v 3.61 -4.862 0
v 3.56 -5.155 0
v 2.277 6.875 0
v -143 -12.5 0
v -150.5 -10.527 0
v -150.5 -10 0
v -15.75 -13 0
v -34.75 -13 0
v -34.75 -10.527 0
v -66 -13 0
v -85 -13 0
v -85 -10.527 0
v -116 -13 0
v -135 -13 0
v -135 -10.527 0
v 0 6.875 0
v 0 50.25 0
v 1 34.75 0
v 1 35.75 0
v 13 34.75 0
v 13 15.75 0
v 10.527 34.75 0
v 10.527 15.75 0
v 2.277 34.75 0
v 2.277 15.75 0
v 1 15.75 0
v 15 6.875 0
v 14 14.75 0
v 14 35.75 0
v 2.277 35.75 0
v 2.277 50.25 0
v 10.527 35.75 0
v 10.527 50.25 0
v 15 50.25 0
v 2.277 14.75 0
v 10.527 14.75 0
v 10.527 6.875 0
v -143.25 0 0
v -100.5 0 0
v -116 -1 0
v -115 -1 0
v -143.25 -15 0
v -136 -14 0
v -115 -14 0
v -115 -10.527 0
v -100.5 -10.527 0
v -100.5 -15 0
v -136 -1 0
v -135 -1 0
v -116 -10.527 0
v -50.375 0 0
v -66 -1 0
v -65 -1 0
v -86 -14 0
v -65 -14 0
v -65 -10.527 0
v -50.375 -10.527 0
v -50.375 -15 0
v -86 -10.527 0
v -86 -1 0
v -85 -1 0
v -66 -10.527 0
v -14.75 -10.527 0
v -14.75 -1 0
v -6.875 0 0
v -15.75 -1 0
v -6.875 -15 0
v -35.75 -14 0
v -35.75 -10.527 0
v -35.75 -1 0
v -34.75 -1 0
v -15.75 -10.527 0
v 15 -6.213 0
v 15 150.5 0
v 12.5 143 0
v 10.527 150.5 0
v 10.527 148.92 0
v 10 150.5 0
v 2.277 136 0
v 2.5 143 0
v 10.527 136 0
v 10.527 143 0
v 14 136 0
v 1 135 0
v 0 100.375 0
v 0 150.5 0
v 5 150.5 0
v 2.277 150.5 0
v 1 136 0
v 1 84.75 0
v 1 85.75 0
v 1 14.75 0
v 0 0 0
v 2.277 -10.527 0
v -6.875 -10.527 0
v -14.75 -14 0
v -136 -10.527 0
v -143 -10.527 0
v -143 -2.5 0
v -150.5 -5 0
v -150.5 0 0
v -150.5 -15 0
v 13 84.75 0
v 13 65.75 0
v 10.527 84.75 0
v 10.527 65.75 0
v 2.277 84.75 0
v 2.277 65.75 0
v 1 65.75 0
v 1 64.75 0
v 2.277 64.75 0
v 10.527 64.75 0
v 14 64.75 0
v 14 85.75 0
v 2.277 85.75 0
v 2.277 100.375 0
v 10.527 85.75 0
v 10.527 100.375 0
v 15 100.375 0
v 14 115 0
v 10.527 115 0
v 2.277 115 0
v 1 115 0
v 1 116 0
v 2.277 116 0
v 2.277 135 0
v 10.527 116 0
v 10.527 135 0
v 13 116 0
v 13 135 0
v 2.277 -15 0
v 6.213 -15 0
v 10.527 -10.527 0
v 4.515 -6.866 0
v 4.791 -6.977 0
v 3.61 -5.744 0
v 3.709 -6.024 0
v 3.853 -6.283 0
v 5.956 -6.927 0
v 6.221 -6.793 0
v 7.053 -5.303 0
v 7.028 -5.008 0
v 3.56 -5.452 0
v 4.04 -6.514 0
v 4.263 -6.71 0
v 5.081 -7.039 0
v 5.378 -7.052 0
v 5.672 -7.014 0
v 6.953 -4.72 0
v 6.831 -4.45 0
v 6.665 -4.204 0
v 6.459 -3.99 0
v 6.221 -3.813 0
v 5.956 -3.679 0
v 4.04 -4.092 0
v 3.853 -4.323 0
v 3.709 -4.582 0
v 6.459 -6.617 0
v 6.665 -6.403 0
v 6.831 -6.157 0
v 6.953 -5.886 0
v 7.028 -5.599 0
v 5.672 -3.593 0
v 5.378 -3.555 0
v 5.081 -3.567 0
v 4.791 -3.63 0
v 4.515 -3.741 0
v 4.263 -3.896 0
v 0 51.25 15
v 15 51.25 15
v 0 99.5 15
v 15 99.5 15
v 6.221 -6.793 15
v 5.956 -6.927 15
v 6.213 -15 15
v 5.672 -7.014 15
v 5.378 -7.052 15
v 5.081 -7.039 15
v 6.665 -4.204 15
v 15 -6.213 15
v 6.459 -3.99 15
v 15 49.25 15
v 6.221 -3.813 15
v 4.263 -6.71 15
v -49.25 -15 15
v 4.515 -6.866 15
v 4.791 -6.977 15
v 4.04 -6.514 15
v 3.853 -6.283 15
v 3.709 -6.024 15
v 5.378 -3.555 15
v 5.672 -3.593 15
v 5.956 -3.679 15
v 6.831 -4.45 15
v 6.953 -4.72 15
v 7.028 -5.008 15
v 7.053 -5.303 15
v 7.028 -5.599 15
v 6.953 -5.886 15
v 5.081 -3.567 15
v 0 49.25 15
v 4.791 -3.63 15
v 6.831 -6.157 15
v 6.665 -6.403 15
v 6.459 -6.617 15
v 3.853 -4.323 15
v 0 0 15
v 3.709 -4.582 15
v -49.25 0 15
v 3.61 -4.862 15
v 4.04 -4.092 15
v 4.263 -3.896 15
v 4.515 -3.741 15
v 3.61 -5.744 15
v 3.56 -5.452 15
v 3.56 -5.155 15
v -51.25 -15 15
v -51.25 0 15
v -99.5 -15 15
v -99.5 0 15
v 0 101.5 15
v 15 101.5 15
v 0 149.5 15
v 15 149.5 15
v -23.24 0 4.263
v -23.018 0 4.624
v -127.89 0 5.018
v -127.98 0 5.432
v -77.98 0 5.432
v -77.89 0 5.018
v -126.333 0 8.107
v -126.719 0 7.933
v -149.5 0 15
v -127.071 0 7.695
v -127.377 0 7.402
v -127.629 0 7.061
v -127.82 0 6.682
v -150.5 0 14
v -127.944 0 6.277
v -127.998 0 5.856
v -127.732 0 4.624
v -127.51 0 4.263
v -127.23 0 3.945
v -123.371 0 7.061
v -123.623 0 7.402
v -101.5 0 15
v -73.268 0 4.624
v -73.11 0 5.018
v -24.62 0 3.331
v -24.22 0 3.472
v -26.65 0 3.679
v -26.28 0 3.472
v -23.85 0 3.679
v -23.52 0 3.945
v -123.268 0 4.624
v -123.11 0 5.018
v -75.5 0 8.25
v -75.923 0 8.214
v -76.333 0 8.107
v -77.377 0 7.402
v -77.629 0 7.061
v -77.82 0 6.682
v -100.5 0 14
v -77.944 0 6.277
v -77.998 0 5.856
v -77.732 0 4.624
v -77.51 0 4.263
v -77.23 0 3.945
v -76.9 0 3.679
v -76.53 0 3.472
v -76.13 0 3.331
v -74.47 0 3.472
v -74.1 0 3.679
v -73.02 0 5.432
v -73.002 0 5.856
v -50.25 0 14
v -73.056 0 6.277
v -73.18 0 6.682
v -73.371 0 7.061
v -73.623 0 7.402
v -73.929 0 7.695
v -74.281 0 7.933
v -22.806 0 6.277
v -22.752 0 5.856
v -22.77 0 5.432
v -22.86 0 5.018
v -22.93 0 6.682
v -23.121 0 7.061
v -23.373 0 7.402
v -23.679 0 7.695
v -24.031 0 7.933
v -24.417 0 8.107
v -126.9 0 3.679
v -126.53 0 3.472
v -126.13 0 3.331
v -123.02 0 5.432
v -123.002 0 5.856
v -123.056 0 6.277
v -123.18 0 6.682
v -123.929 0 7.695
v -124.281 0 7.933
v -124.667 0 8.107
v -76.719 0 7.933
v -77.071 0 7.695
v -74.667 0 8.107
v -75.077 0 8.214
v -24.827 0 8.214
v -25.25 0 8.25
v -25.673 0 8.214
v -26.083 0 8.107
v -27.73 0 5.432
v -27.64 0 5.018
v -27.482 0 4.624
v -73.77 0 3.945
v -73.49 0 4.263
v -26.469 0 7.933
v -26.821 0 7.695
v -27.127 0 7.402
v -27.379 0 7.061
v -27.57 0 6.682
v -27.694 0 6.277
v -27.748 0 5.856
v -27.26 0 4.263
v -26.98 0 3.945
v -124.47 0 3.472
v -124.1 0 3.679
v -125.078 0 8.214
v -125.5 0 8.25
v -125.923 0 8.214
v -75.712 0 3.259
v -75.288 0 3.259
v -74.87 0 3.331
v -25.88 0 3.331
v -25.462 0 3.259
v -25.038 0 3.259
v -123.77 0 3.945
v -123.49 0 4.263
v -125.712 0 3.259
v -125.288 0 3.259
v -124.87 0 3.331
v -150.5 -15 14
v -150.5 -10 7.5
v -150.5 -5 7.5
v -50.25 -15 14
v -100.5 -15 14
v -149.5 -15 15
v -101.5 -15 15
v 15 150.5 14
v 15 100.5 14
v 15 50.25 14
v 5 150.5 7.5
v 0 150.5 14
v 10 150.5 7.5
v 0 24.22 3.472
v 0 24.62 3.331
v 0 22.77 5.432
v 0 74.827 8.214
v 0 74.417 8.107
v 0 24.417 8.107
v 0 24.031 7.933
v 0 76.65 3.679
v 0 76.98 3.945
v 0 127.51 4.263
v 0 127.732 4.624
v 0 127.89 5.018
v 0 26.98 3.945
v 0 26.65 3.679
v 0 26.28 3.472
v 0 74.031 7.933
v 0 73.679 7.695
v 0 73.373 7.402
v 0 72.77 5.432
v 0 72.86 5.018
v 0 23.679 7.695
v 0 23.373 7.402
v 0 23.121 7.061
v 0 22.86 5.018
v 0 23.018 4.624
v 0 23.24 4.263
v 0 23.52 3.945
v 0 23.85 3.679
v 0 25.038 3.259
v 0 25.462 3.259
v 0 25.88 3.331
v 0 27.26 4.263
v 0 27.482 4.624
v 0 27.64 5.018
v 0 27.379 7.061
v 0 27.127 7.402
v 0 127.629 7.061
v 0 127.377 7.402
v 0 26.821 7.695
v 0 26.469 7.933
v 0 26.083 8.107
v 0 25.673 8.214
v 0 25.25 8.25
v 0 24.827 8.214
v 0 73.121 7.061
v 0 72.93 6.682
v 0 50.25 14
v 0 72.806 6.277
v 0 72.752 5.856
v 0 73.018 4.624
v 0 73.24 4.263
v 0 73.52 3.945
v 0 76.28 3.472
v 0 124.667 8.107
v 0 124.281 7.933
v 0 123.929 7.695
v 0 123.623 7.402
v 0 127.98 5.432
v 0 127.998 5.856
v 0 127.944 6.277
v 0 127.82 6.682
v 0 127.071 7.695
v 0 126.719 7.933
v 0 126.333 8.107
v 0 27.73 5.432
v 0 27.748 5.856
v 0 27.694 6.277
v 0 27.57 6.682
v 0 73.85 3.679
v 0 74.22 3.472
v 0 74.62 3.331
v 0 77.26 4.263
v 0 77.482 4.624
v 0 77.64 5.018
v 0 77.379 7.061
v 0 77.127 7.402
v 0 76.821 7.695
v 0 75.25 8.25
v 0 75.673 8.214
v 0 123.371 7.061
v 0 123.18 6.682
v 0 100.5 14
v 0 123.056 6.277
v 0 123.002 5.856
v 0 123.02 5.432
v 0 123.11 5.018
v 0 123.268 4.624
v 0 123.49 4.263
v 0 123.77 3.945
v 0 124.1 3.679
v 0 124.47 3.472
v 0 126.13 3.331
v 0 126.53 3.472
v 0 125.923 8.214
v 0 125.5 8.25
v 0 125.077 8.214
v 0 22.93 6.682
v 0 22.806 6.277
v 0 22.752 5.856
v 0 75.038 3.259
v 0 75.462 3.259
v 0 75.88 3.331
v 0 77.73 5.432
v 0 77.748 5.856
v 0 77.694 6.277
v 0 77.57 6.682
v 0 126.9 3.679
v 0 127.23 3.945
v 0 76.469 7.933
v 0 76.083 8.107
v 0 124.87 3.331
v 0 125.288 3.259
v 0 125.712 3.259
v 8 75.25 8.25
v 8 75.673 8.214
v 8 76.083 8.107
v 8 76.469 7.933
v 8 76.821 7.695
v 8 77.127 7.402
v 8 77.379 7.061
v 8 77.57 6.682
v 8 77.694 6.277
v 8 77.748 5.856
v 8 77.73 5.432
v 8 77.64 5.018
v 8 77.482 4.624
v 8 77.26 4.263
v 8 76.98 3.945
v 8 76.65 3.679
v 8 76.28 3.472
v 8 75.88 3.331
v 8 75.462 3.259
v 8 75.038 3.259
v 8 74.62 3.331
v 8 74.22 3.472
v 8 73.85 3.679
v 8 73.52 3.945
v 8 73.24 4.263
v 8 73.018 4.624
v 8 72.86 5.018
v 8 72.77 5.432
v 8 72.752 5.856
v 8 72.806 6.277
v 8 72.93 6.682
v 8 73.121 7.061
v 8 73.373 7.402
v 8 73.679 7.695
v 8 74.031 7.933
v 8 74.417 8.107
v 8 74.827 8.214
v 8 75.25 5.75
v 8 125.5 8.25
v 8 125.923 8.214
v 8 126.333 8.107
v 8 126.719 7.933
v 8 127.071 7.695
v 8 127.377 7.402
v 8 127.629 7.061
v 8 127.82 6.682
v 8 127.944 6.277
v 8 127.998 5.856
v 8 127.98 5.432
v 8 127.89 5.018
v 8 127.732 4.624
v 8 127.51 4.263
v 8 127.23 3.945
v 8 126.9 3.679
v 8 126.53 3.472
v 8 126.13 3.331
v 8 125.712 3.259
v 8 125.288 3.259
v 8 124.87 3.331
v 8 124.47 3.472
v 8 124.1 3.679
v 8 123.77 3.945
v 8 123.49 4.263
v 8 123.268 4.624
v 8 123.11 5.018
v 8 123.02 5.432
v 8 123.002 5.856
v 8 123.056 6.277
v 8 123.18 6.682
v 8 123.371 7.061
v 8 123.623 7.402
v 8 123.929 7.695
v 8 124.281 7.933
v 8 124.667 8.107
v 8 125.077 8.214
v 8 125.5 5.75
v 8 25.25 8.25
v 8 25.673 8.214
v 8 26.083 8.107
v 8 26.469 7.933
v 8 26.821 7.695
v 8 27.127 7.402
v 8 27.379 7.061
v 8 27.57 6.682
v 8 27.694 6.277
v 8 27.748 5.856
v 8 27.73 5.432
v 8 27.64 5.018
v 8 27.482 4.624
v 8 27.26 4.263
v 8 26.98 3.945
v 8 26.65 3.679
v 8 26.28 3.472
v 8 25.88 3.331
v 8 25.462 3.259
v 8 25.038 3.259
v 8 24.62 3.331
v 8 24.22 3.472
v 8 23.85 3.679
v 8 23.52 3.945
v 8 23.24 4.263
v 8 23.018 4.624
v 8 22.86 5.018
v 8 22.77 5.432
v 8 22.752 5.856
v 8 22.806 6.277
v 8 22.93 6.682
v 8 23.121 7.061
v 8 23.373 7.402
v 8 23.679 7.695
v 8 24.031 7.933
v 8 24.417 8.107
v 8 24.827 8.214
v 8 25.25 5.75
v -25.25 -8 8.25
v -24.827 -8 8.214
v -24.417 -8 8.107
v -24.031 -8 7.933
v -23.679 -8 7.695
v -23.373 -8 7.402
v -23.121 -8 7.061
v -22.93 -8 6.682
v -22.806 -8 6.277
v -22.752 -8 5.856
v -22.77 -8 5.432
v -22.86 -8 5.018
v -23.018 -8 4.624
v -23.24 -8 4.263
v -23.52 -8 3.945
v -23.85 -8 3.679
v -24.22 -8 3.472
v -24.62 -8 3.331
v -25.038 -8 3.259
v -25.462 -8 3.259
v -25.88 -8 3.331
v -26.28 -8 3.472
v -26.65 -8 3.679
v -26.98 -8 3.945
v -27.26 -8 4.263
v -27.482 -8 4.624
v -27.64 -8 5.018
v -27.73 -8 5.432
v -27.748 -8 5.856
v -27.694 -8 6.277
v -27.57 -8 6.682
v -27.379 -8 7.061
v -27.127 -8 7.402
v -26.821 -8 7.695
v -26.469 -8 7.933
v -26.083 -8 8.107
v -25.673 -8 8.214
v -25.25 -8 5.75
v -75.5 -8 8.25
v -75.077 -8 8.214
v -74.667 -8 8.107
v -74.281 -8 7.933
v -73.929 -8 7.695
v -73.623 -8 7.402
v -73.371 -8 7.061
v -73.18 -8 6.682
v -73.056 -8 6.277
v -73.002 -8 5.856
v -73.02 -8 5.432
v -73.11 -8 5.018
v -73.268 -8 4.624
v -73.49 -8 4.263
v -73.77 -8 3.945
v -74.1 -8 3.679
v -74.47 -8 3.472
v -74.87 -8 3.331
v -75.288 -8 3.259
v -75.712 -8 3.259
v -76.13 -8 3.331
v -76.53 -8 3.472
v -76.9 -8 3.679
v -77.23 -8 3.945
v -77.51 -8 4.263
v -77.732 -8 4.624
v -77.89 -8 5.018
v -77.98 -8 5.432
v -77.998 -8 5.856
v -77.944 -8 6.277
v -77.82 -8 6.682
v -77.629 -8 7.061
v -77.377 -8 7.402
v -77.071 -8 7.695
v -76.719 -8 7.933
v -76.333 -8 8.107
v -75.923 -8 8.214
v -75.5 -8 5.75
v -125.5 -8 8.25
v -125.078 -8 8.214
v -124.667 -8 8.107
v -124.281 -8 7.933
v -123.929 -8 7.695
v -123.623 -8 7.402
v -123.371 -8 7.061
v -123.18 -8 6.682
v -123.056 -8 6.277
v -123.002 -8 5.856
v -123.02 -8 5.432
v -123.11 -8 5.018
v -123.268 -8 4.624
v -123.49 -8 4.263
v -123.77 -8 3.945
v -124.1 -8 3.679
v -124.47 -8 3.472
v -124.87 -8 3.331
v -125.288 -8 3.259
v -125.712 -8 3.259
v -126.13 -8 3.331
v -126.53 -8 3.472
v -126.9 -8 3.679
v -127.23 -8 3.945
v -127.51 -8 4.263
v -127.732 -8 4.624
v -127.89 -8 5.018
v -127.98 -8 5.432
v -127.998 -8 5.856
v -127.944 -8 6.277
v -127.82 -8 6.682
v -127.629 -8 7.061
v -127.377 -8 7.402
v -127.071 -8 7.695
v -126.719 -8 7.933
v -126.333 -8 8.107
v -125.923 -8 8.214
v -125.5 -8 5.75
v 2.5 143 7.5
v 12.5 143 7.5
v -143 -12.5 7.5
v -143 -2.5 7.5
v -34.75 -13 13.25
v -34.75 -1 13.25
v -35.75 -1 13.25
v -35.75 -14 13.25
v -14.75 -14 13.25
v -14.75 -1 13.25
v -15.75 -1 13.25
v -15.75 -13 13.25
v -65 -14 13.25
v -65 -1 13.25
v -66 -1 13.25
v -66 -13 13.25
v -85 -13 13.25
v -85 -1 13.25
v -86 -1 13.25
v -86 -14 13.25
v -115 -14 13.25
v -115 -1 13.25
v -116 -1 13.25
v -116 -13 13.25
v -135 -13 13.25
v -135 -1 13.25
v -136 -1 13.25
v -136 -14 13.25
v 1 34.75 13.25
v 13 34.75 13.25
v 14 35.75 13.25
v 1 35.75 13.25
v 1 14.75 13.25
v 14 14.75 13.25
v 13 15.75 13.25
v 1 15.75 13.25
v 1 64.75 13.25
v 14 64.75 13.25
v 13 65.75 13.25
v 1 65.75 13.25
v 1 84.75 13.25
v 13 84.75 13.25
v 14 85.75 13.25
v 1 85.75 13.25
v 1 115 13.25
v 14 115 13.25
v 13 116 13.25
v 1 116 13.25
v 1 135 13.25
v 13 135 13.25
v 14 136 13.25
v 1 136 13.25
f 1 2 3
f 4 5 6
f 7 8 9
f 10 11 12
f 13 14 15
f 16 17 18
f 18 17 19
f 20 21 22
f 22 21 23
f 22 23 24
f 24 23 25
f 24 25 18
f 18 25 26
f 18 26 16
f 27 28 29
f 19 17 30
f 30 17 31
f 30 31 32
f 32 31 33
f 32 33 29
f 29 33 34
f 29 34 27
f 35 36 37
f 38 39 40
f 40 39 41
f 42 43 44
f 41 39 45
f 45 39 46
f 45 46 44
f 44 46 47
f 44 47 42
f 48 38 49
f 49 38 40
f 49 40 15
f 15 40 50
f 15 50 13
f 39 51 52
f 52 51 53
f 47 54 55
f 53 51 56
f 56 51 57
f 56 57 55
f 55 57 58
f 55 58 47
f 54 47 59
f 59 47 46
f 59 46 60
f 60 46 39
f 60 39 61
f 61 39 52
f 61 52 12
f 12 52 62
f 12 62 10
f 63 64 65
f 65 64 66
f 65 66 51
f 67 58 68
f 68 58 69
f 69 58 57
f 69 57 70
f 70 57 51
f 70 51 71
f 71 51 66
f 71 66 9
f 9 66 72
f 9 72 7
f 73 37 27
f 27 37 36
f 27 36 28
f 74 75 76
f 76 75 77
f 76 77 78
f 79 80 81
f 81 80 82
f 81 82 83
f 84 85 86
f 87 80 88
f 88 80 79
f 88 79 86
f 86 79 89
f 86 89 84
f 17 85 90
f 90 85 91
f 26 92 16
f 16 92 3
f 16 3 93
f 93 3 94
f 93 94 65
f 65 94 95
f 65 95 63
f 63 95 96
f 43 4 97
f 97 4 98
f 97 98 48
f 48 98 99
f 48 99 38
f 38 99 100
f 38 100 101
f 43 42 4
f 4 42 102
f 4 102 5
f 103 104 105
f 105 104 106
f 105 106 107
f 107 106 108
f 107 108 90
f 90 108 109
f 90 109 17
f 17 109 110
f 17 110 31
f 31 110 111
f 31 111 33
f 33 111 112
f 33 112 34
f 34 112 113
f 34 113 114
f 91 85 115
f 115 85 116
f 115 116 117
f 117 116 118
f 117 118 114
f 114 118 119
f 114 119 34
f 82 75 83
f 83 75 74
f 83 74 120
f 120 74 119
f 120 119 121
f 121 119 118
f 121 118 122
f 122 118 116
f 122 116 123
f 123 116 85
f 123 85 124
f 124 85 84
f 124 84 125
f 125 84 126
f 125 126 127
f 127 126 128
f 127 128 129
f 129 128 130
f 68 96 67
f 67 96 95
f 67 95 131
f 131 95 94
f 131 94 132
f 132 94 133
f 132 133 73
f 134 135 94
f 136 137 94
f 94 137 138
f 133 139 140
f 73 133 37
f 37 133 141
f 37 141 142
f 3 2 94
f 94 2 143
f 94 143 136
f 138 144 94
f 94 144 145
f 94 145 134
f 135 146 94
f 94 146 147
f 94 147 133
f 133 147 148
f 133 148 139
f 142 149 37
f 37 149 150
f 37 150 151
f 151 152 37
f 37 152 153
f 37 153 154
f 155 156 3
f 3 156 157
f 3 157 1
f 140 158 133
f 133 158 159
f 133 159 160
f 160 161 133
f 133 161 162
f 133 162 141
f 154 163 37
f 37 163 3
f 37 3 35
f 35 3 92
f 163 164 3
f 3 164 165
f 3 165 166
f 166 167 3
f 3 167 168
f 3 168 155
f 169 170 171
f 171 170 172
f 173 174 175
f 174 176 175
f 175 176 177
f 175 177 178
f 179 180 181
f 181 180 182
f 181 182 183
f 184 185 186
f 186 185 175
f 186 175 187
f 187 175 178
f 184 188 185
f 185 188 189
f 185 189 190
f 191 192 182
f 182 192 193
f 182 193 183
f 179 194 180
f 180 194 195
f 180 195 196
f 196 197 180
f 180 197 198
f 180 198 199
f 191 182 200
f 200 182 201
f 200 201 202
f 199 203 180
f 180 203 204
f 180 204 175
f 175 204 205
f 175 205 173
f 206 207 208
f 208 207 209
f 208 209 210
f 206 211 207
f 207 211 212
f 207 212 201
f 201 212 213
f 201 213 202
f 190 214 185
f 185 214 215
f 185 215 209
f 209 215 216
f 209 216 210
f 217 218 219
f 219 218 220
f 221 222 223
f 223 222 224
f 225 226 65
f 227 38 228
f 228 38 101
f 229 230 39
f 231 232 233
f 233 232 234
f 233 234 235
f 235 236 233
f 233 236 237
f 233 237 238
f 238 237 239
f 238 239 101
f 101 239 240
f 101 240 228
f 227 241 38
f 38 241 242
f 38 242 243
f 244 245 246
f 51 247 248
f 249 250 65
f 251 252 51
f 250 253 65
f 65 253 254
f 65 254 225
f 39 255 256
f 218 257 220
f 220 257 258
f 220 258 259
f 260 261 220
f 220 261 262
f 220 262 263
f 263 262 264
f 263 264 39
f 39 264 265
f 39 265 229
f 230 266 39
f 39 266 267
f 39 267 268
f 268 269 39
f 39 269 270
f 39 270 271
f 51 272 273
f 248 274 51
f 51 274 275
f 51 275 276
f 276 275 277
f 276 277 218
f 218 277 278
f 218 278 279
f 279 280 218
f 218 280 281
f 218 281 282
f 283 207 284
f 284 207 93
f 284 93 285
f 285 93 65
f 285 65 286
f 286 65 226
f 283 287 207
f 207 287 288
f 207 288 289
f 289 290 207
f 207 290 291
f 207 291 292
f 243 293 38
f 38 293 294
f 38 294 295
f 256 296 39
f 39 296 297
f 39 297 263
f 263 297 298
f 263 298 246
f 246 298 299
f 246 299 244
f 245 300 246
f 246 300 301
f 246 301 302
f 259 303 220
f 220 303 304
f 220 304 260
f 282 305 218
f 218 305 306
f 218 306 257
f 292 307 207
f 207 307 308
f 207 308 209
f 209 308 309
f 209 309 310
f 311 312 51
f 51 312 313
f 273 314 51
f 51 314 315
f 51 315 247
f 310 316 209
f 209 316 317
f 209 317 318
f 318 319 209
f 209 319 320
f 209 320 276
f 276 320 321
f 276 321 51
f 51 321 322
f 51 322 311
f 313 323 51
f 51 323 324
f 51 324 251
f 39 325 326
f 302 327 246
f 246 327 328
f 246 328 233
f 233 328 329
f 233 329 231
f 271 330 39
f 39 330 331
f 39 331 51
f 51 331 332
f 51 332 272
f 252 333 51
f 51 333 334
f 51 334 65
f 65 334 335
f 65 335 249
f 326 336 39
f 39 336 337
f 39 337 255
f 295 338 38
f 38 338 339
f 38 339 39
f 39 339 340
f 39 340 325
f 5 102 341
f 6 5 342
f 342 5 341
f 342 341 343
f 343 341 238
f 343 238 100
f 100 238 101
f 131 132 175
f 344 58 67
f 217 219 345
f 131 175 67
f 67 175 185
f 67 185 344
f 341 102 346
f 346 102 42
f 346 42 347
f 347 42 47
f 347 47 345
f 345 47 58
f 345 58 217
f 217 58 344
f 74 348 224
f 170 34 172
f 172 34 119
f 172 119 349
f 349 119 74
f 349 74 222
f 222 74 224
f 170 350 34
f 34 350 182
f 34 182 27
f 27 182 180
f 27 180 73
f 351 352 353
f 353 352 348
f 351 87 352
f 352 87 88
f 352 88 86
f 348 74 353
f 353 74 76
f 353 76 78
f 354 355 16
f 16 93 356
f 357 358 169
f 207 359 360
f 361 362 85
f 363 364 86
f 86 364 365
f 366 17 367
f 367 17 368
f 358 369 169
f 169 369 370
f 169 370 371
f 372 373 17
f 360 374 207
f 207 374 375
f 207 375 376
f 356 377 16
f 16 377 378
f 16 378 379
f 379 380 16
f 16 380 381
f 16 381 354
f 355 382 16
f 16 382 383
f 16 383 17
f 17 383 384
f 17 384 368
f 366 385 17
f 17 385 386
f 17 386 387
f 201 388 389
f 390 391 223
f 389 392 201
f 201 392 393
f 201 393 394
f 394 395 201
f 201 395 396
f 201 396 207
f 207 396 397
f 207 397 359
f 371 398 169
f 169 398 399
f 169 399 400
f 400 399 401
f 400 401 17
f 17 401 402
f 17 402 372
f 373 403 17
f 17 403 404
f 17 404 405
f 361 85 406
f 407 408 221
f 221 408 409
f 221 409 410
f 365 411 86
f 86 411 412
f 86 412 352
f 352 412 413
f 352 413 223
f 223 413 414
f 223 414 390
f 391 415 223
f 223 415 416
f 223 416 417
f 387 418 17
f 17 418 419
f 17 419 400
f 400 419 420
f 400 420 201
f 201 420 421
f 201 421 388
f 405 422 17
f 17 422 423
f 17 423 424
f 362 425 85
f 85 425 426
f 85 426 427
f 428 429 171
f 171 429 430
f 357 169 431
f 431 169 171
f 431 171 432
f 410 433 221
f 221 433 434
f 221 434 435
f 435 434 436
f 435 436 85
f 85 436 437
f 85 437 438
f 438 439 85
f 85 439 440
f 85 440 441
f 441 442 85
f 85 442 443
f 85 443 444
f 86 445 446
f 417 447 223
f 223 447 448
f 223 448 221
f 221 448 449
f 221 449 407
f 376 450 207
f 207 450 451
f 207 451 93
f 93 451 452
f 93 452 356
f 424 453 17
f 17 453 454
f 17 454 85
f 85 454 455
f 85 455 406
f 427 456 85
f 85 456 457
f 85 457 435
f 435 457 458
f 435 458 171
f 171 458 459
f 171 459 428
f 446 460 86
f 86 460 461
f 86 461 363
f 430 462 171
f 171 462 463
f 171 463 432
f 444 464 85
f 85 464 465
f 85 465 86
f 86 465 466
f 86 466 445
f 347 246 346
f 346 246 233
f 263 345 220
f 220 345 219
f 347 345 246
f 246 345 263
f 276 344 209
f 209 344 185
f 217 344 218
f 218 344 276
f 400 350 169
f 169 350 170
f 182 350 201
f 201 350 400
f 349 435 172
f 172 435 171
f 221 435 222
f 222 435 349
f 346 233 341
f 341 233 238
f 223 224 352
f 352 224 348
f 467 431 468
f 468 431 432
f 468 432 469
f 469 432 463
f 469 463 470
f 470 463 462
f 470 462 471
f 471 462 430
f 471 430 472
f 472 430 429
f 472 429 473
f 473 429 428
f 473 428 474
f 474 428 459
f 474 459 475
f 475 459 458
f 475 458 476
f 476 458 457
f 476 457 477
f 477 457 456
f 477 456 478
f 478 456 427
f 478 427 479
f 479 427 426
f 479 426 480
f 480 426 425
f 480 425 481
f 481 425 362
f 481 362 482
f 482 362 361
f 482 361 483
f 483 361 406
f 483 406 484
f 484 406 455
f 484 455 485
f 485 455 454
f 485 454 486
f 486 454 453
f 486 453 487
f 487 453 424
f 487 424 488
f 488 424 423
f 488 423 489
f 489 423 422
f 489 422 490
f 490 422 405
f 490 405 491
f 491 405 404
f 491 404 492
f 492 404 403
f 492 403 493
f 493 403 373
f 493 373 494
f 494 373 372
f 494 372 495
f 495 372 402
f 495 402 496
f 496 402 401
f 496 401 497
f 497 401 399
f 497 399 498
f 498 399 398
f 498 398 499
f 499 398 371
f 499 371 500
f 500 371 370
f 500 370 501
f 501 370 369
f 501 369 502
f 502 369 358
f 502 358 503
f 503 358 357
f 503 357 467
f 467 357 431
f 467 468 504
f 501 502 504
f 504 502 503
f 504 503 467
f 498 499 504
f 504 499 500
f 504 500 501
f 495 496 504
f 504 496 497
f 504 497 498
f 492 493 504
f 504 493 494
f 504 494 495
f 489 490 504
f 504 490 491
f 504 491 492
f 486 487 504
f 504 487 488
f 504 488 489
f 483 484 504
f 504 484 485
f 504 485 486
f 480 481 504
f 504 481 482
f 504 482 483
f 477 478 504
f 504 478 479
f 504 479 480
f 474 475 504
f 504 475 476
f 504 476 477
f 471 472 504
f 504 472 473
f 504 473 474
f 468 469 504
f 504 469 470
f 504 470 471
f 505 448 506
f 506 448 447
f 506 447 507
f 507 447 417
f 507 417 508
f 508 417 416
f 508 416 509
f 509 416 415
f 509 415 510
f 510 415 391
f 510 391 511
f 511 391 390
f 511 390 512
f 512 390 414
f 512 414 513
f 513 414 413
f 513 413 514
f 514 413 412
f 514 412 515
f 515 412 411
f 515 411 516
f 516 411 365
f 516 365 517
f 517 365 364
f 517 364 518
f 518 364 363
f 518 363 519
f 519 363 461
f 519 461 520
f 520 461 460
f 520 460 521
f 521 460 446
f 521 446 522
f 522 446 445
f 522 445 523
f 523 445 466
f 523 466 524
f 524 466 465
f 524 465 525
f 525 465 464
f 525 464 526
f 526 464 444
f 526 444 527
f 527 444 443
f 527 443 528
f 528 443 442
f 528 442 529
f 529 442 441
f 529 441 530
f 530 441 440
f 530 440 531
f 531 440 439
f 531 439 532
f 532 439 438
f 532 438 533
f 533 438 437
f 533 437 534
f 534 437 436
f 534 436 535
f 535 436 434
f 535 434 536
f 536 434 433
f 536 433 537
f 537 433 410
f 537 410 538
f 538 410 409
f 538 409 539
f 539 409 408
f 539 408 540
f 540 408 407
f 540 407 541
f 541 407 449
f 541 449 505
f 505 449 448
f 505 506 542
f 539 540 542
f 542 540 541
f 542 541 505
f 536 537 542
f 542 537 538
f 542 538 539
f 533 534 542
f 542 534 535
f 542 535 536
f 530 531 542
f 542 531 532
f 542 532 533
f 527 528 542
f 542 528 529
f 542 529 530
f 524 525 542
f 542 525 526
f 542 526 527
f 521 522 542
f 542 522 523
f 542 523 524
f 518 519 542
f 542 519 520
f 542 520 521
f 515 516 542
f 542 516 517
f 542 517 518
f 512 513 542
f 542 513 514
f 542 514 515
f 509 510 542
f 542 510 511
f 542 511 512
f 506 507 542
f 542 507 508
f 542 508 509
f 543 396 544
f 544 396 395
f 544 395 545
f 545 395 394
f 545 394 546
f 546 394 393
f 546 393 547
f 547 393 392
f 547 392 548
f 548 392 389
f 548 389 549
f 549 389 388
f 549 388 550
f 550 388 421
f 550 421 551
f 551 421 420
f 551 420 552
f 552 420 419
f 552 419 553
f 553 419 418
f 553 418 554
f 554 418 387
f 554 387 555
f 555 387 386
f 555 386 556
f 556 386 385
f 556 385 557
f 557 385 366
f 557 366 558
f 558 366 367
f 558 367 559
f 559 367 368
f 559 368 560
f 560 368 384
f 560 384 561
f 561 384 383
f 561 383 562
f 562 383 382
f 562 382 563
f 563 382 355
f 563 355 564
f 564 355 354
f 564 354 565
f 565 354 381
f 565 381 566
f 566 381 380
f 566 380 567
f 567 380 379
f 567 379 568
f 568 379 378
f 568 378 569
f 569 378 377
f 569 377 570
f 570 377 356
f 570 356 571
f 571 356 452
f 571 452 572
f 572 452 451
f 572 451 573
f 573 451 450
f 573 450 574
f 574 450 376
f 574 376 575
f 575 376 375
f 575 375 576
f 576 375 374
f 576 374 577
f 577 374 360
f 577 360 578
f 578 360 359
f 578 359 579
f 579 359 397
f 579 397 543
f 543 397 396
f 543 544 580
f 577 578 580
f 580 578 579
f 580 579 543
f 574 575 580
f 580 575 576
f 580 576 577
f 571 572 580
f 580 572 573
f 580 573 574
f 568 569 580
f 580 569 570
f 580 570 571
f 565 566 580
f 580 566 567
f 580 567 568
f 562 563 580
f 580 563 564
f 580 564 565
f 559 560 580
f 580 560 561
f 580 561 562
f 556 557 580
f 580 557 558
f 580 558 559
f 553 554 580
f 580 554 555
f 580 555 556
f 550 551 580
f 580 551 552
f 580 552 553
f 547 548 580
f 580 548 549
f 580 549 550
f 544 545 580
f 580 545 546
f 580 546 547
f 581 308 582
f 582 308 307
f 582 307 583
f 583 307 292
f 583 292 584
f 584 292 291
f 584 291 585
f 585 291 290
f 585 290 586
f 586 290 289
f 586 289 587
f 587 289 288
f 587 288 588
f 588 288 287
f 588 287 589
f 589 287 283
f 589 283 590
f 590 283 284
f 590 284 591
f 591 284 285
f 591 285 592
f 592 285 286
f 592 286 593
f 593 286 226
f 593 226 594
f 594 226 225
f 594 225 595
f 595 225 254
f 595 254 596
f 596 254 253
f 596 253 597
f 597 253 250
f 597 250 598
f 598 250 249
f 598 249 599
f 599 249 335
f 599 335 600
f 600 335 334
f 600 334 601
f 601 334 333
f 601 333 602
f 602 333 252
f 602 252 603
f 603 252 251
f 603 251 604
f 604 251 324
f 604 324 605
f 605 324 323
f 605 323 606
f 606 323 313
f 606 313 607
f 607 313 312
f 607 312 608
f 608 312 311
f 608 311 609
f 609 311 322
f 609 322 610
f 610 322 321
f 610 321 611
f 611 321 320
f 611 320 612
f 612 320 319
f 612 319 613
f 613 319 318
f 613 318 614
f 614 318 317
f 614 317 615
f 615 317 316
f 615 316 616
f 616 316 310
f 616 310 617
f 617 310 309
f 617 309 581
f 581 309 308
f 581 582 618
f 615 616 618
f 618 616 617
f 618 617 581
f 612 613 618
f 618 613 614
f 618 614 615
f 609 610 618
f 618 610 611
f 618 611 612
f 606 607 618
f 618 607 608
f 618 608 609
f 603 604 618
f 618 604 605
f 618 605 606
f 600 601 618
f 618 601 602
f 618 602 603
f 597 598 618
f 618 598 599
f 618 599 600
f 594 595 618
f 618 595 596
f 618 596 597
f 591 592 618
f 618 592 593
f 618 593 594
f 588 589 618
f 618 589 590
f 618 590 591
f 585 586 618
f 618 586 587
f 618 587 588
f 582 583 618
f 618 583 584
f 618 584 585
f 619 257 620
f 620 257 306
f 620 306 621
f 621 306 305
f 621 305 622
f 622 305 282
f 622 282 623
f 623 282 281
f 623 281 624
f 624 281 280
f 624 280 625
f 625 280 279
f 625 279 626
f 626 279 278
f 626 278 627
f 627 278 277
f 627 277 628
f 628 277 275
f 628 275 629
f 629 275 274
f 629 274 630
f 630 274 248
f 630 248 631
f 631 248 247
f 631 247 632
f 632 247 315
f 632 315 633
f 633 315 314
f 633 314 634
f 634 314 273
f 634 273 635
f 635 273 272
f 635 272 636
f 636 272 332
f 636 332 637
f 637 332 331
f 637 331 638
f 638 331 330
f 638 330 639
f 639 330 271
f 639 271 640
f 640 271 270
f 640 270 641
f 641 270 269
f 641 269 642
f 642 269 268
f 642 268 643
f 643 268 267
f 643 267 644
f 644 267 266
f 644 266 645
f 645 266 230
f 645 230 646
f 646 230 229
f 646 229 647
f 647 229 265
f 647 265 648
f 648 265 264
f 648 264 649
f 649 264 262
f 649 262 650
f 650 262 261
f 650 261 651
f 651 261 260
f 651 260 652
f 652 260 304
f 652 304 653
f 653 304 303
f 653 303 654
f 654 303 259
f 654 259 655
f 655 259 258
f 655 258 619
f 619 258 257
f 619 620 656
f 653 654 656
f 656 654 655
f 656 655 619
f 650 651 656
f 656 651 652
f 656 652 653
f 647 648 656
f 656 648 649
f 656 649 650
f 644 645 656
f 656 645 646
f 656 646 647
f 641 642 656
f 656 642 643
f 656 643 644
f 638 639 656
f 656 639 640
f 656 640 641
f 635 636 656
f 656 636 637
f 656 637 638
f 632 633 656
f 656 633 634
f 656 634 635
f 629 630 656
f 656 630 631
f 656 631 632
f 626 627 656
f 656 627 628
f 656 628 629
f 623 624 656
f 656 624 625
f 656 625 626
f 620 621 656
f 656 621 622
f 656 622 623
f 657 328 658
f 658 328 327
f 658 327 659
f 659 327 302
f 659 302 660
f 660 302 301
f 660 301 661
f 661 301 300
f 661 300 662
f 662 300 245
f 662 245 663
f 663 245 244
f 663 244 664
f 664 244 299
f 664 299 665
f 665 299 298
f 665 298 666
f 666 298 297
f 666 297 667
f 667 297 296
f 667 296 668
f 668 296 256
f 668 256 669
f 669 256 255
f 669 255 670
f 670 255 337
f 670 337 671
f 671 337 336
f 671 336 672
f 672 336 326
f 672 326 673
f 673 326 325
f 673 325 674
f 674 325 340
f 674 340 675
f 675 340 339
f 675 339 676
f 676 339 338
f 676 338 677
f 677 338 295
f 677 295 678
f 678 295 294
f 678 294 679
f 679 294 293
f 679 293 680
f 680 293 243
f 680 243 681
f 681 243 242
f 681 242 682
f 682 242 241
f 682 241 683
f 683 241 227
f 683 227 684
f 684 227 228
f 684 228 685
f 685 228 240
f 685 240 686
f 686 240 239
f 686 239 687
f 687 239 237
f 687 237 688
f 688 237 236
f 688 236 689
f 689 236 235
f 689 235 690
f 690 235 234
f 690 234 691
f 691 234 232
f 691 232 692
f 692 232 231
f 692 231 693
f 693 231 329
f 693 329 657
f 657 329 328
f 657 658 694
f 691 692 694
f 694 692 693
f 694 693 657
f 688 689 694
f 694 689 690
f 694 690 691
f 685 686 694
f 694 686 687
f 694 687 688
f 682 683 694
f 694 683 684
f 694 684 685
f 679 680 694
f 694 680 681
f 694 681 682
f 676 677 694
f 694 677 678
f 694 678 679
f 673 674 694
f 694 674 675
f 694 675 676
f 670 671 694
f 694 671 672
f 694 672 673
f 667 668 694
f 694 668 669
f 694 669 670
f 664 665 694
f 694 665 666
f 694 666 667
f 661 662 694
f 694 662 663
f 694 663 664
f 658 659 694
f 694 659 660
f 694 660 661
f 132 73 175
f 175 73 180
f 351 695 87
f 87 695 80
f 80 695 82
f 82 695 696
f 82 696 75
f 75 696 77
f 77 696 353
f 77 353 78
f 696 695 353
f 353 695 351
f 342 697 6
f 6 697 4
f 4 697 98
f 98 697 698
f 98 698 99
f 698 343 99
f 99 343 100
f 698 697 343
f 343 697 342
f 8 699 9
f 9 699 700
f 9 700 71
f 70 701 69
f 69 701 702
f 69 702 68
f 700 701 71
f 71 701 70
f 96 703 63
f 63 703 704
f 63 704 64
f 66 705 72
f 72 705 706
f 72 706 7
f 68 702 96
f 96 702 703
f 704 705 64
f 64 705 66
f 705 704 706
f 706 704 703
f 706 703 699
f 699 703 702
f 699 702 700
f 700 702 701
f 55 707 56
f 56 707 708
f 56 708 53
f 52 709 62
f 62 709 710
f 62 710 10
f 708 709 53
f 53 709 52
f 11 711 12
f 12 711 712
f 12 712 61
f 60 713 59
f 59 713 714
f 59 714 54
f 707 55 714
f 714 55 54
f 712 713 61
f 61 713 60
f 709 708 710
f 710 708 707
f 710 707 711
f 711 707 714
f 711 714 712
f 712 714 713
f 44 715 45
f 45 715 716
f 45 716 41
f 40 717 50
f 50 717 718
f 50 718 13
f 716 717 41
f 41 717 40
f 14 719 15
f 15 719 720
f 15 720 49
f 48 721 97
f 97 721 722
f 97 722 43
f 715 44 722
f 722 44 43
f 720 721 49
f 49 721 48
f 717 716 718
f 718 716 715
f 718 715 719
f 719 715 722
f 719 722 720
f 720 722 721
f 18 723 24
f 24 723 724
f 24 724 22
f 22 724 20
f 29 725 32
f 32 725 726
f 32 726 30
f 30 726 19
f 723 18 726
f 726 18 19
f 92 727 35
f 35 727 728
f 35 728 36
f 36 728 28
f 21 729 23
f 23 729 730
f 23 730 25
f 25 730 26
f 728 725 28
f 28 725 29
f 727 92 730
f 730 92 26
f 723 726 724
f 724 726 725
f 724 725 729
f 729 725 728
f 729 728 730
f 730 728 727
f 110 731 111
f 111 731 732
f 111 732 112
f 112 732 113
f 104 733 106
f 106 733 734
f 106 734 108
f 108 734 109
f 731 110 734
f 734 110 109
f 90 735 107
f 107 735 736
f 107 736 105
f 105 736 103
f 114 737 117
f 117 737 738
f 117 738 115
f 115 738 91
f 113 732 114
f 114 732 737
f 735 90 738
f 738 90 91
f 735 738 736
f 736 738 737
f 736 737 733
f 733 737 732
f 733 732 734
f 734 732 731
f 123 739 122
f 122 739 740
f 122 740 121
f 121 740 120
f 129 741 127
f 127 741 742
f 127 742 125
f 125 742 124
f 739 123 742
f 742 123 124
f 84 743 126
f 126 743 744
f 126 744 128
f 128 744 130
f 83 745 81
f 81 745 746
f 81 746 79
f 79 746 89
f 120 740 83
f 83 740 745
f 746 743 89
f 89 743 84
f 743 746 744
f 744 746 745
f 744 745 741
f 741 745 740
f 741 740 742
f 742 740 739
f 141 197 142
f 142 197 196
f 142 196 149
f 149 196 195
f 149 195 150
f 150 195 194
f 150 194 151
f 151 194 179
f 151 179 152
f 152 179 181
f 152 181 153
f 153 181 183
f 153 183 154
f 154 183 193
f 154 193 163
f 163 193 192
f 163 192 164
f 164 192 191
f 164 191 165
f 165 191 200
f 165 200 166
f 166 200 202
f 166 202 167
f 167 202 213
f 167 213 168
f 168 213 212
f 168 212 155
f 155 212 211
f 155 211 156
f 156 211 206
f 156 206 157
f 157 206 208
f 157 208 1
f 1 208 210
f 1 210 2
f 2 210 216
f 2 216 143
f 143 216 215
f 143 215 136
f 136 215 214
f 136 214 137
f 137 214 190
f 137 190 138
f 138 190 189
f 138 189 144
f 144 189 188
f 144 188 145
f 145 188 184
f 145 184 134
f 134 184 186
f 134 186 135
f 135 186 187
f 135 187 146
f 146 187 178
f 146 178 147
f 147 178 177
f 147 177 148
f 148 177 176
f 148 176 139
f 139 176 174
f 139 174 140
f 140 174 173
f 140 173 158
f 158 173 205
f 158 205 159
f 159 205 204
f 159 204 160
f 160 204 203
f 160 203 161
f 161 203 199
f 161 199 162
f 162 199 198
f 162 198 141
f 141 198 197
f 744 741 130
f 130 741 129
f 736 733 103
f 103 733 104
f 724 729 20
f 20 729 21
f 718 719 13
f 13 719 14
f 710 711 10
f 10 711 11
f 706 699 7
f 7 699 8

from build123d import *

# Parameters (mm, degrees)
BODY_DEPTH                 = 15
SKETCH3_W                  = 2
SKETCH3_H                  = 15
SKETCH3_W_2                = 15
SKETCH3_H_2                = 2
FIELD_CUT_DEPTH            = 2
FIELD_CHAMFER_SIZE         = 2
CLICK_CHAMFER_1_DEPTH      = 225.199687779
CLICK_CHAMFER_1_DEPTH_BACK = 225.199687779
CLICK_CHAMFER_2_DEPTH      = 225.199687779
CLICK_CHAMFER_2_DEPTH_BACK = 225.199687779
SKETCH7_R                  = 2.5
LED_HOLE_2_DEPTH           = 8
SKETCH8_R                  = 2.5
LED_HOLE_1_DEPTH           = 8
CORNER_CHAMFER_DEPTH       = 214.367054627
CORNER_CHAMFER_DEPTH_BACK  = 214.367054627
CLICK_HOLE_DEPTH           = 7.5
SKETCH12_W                 = 1
SKETCH12_H                 = 15
LIGHT_GUIDE_1_DEPTH        = 13
SKETCH13_W                 = 15
SKETCH13_H                 = 1
LIGHT_GUIDE_2_DEPTH        = 13
MOUNTING_HOLE_DEPTH        = 214.367054627
MOUNTING_HOLE_DEPTH_BACK   = 214.367054627
SKETCH14_R                 = 1.75
SKETCH15_W                 = 1
SKETCH15_H                 = 19
SKETCH15_W_2               = 19
SKETCH15_H_2               = 1
CUT_EXTRUDE1_DEPTH         = 13.25


with BuildPart() as part:
    # Sketch1 → Body (new body)
    with BuildSketch(Plane.XY):
        Polygon((0, 0), (0, 150.5), (15, 150.5), (15, -15), (-150.5, -15), (-150.5, 0), align=None)
    extrude(amount=BODY_DEPTH)

    # Sketch3 → Field Cut (cut)
    with BuildSketch(Plane.XY.offset(15)):
        with Locations((-50.25, -7.5)):
            Rectangle(SKETCH3_W, SKETCH3_H)
        with Locations((-100.5, -7.5)):
            Rectangle(SKETCH3_W, SKETCH3_H)
        with Locations((7.5, 50.25)):
            Rectangle(SKETCH3_W_2, SKETCH3_H_2)
        with Locations((7.5, 100.5)):
            Rectangle(SKETCH3_W_2, SKETCH3_H_2)
    extrude(amount=-FIELD_CUT_DEPTH, mode=Mode.SUBTRACT)

    # Field Chamfer
    # the kernel refuses this chamfer: 2 mm, written as the material it adds along each edge
    with BuildSketch(Plane(origin=(-101.5, 0, 13), x_dir=(0.9996219169112968, 0, -0.027495876610586414), z_dir=(0, -1, 0))) as field_chamfer_piece_1_section:
        Polygon((FIELD_CHAMFER_SIZE * 0.999621916911, FIELD_CHAMFER_SIZE * 0.0274958766106), (-FIELD_CHAMFER_SIZE * 0.0274958766106, FIELD_CHAMFER_SIZE * 0.999621916911), (0, 0), align=None)
    field_chamfer_piece_1 = extrude(amount=15, mode=Mode.PRIVATE)
    field_chamfer_piece_1 = split(field_chamfer_piece_1, bisect_by=Plane(origin=(-100.839191691, -7.5, 15), z_dir=(0, 0, -1)), keep=Keep.TOP, mode=Mode.PRIVATE)
    add(field_chamfer_piece_1)
    with BuildSketch(Plane(origin=(-99.5, -15, 13), x_dir=(0.02749587661058907, 0, 0.9996219169112965), z_dir=(0, 1, 0))) as field_chamfer_piece_2_section:
        Polygon((FIELD_CHAMFER_SIZE * 0.999621916911, -FIELD_CHAMFER_SIZE * 0.0274958766106), (-FIELD_CHAMFER_SIZE * 0.0274958766106, -FIELD_CHAMFER_SIZE * 0.999621916911), (0, 0), align=None)
    field_chamfer_piece_2 = extrude(amount=15, mode=Mode.PRIVATE)
    field_chamfer_piece_2 = split(field_chamfer_piece_2, bisect_by=Plane(origin=(-100.160808309, -7.5, 15), z_dir=(0, 0, -1)), keep=Keep.TOP, mode=Mode.PRIVATE)
    add(field_chamfer_piece_2)
    with BuildSketch(Plane(origin=(-51.25, 0, 13), x_dir=(0.9996219169112968, 0, -0.02749587661058651), z_dir=(0, -1, 0))) as field_chamfer_piece_3_section:
        Polygon((FIELD_CHAMFER_SIZE * 0.999621916911, FIELD_CHAMFER_SIZE * 0.0274958766106), (-FIELD_CHAMFER_SIZE * 0.0274958766106, FIELD_CHAMFER_SIZE * 0.999621916911), (0, 0), align=None)
    field_chamfer_piece_3 = extrude(amount=15, mode=Mode.PRIVATE)
    field_chamfer_piece_3 = split(field_chamfer_piece_3, bisect_by=Plane(origin=(-50.589191691, -7.5, 15), z_dir=(0, 0, -1)), keep=Keep.TOP, mode=Mode.PRIVATE)
    add(field_chamfer_piece_3)
    with BuildSketch(Plane(origin=(-49.25, -15, 13), x_dir=(0.027495876610585623, 0, 0.9996219169112968), z_dir=(0, 1, 0))) as field_chamfer_piece_4_section:
        Polygon((FIELD_CHAMFER_SIZE * 0.999621916911, -FIELD_CHAMFER_SIZE * 0.0274958766106), (-FIELD_CHAMFER_SIZE * 0.0274958766106, -FIELD_CHAMFER_SIZE * 0.999621916911), (0, 0), align=None)
    field_chamfer_piece_4 = extrude(amount=15, mode=Mode.PRIVATE)
    field_chamfer_piece_4 = split(field_chamfer_piece_4, bisect_by=Plane(origin=(-49.910808309, -7.5, 15), z_dir=(0, 0, -1)), keep=Keep.TOP, mode=Mode.PRIVATE)
    add(field_chamfer_piece_4)
    with BuildSketch(Plane(origin=(15, 49.25, 13), x_dir=(0, 0.9996219169112968, -0.02749587661058651), z_dir=(-1, 0, 0))) as field_chamfer_piece_5_section:
        Polygon((FIELD_CHAMFER_SIZE * 0.999621916911, -FIELD_CHAMFER_SIZE * 0.0274958766106), (-FIELD_CHAMFER_SIZE * 0.0274958766106, -FIELD_CHAMFER_SIZE * 0.999621916911), (0, 0), align=None)
    field_chamfer_piece_5 = extrude(amount=15, mode=Mode.PRIVATE)
    field_chamfer_piece_5 = split(field_chamfer_piece_5, bisect_by=Plane(origin=(7.5, 49.910808309, 15), z_dir=(0, 0, -1)), keep=Keep.TOP, mode=Mode.PRIVATE)
    add(field_chamfer_piece_5)
    with BuildSketch(Plane(origin=(0, 51.25, 13), x_dir=(0, 0.027495876610585623, 0.9996219169112968), z_dir=(1, 0, 0))) as field_chamfer_piece_6_section:
        Polygon((FIELD_CHAMFER_SIZE * 0.999621916911, FIELD_CHAMFER_SIZE * 0.0274958766106), (-FIELD_CHAMFER_SIZE * 0.0274958766106, FIELD_CHAMFER_SIZE * 0.999621916911), (0, 0), align=None)
    field_chamfer_piece_6 = extrude(amount=15, mode=Mode.PRIVATE)
    field_chamfer_piece_6 = split(field_chamfer_piece_6, bisect_by=Plane(origin=(7.5, 50.589191691, 15), z_dir=(0, 0, -1)), keep=Keep.TOP, mode=Mode.PRIVATE)
    add(field_chamfer_piece_6)
    with BuildSketch(Plane(origin=(0, 101.5, 13), x_dir=(0, 0.02749587661058907, 0.9996219169112965), z_dir=(1, 0, 0))) as field_chamfer_piece_7_section:
        Polygon((FIELD_CHAMFER_SIZE * 0.999621916911, FIELD_CHAMFER_SIZE * 0.0274958766106), (-FIELD_CHAMFER_SIZE * 0.0274958766106, FIELD_CHAMFER_SIZE * 0.999621916911), (0, 0), align=None)
    field_chamfer_piece_7 = extrude(amount=15, mode=Mode.PRIVATE)
    field_chamfer_piece_7 = split(field_chamfer_piece_7, bisect_by=Plane(origin=(7.5, 100.839191691, 15), z_dir=(0, 0, -1)), keep=Keep.TOP, mode=Mode.PRIVATE)
    add(field_chamfer_piece_7)
    with BuildSketch(Plane(origin=(15, 99.5, 13), x_dir=(0, 0.9996219169112968, -0.027495876610586414), z_dir=(-1, 0, 0))) as field_chamfer_piece_8_section:
        Polygon((FIELD_CHAMFER_SIZE * 0.999621916911, -FIELD_CHAMFER_SIZE * 0.0274958766106), (-FIELD_CHAMFER_SIZE * 0.0274958766106, -FIELD_CHAMFER_SIZE * 0.999621916911), (0, 0), align=None)
    field_chamfer_piece_8 = extrude(amount=15, mode=Mode.PRIVATE)
    field_chamfer_piece_8 = split(field_chamfer_piece_8, bisect_by=Plane(origin=(7.5, 100.160808309, 15), z_dir=(0, 0, -1)), keep=Keep.TOP, mode=Mode.PRIVATE)
    add(field_chamfer_piece_8)

    # Sketch4 → Click Chamfer 1 (cut, two sides: drawn at the far end of the back side and taken through both)
    with BuildSketch(Plane.XZ.offset(15).offset(-CLICK_CHAMFER_1_DEPTH_BACK)):
        Polygon((-150.5, 15), (-150.5, 14), (-149.5, 15), align=None)
    extrude(amount=CLICK_CHAMFER_1_DEPTH + CLICK_CHAMFER_1_DEPTH_BACK, mode=Mode.SUBTRACT)

    # Sketch5 → Click Chamfer 2 (cut, two sides: drawn at the far end of the back side and taken through both)
    with BuildSketch(Plane(origin=(15, 0, 0), x_dir=(0, 0, -1), z_dir=(1, 0, 0)).offset(-CLICK_CHAMFER_2_DEPTH_BACK)):
        Polygon((-15, 150.5), (-15, 149.5), (-14, 150.5), align=None)
    extrude(amount=CLICK_CHAMFER_2_DEPTH + CLICK_CHAMFER_2_DEPTH_BACK, mode=Mode.SUBTRACT)

    # Sketch7 → LED Hole 2 (cut)
    with BuildSketch(Plane.ZY):
        with Locations((5.75, 75.25)):
            Circle(SKETCH7_R)
        with Locations((5.75, 125.5)):
            Circle(SKETCH7_R)
        with Locations((5.75, 25.25)):
            Circle(SKETCH7_R)
    extrude(amount=-LED_HOLE_2_DEPTH, mode=Mode.SUBTRACT)

    # Sketch8 → LED Hole 1 (cut)
    with BuildSketch(Plane(origin=(0, 0, 0), x_dir=(1, 0, 0), z_dir=(0, 1, 0))):
        with Locations(Location((-125.5, -5.75, 0), (0, 0, 270))):
            Circle(SKETCH8_R)
        with Locations(Location((-75.5, -5.75, 0), (0, 0, 270))):
            Circle(SKETCH8_R)
        with Locations(Location((-25.25, -5.75, 0), (0, 0, 270))):
            Circle(SKETCH8_R)
    extrude(amount=-LED_HOLE_1_DEPTH, mode=Mode.SUBTRACT)

    # Sketch9 → Corner Chamfer (cut, two sides: drawn at the far end of the back side and taken through both)
    with BuildSketch(Plane.XY.offset(15).offset(-CORNER_CHAMFER_DEPTH_BACK)):
        Polygon((15, -6.213203436), (6.213203436, -15), (15, -15), align=None)
    extrude(amount=CORNER_CHAMFER_DEPTH + CORNER_CHAMFER_DEPTH_BACK, mode=Mode.SUBTRACT)

    # Sketch10 → Click Hole (cut)
    with BuildSketch(Plane(origin=(0, 0, 0), x_dir=(-1, 0, 0), z_dir=(0, 0, -1))):
        Polygon((150.5, -5), (143, -2.5), (143, -12.5), (150.5, -10), align=None)
        Polygon((-7.5, 150.5), (-10, 150.5), (-12.5, 143), (-7.5, 143), (-2.5, 143), (-5, 150.5), align=None)
    extrude(amount=-CLICK_HOLE_DEPTH, mode=Mode.SUBTRACT)

    # Sketch12 → Light Guide 1 (cut)
    with BuildSketch(Plane(origin=(0, -1, 0), x_dir=(1, 0, 0), z_dir=(0, 1, 0))):
        with Locations((-35.25, -5.75)):
            Rectangle(SKETCH12_W, SKETCH12_H)
        with Locations((-15.25, -5.75)):
            Rectangle(SKETCH12_W, SKETCH12_H)
        with Locations((-65.5, -5.75)):
            Rectangle(SKETCH12_W, SKETCH12_H)
        with Locations((-85.5, -5.75)):
            Rectangle(SKETCH12_W, SKETCH12_H)
        with Locations((-115.5, -5.75)):
            Rectangle(SKETCH12_W, SKETCH12_H)
        with Locations((-135.5, -5.75)):
            Rectangle(SKETCH12_W, SKETCH12_H)
    extrude(amount=-LIGHT_GUIDE_1_DEPTH, mode=Mode.SUBTRACT)

    # Sketch13 → Light Guide 2 (cut)
    with BuildSketch(Plane.ZY.offset(-1)):
        with Locations((5.75, 35.25)):
            Rectangle(SKETCH13_W, SKETCH13_H)
        with Locations((5.75, 15.25)):
            Rectangle(SKETCH13_W, SKETCH13_H)
        with Locations((5.75, 65.25)):
            Rectangle(SKETCH13_W, SKETCH13_H)
        with Locations((5.75, 85.25)):
            Rectangle(SKETCH13_W, SKETCH13_H)
        with Locations((5.75, 115.5)):
            Rectangle(SKETCH13_W, SKETCH13_H)
        with Locations((5.75, 135.5)):
            Rectangle(SKETCH13_W, SKETCH13_H)
    extrude(amount=-LIGHT_GUIDE_2_DEPTH, mode=Mode.SUBTRACT)

    # Sketch14 → Mounting Hole (cut, two sides: drawn at the far end of the back side and taken through both)
    with BuildSketch(Plane.XY.offset(15).offset(-MOUNTING_HOLE_DEPTH_BACK)):
        with Locations((5.303300859, -5.303300859)):
            Circle(SKETCH14_R)
    extrude(amount=MOUNTING_HOLE_DEPTH + MOUNTING_HOLE_DEPTH_BACK, mode=Mode.SUBTRACT)

    # Sketch15 → Cut-Extrude1 (cut)
    with BuildSketch(Plane(origin=(0, 0, 0), x_dir=(-1, 0, 0), z_dir=(0, 0, -1))):
        with Locations((-13.5, 125.5)):
            Rectangle(SKETCH15_W, SKETCH15_H)
        with Locations((-13.5, 75.25)):
            Rectangle(SKETCH15_W, SKETCH15_H)
        with Locations((-13.5, 25.25)):
            Rectangle(SKETCH15_W, SKETCH15_H)
        with Locations((25.25, -13.5)):
            Rectangle(SKETCH15_W_2, SKETCH15_H_2)
        with Locations((75.5, -13.5)):
            Rectangle(SKETCH15_W_2, SKETCH15_H_2)
        with Locations((125.5, -13.5)):
            Rectangle(SKETCH15_W_2, SKETCH15_H_2)
    extrude(amount=-CUT_EXTRUDE1_DEPTH, mode=Mode.SUBTRACT)


solid = part.part
